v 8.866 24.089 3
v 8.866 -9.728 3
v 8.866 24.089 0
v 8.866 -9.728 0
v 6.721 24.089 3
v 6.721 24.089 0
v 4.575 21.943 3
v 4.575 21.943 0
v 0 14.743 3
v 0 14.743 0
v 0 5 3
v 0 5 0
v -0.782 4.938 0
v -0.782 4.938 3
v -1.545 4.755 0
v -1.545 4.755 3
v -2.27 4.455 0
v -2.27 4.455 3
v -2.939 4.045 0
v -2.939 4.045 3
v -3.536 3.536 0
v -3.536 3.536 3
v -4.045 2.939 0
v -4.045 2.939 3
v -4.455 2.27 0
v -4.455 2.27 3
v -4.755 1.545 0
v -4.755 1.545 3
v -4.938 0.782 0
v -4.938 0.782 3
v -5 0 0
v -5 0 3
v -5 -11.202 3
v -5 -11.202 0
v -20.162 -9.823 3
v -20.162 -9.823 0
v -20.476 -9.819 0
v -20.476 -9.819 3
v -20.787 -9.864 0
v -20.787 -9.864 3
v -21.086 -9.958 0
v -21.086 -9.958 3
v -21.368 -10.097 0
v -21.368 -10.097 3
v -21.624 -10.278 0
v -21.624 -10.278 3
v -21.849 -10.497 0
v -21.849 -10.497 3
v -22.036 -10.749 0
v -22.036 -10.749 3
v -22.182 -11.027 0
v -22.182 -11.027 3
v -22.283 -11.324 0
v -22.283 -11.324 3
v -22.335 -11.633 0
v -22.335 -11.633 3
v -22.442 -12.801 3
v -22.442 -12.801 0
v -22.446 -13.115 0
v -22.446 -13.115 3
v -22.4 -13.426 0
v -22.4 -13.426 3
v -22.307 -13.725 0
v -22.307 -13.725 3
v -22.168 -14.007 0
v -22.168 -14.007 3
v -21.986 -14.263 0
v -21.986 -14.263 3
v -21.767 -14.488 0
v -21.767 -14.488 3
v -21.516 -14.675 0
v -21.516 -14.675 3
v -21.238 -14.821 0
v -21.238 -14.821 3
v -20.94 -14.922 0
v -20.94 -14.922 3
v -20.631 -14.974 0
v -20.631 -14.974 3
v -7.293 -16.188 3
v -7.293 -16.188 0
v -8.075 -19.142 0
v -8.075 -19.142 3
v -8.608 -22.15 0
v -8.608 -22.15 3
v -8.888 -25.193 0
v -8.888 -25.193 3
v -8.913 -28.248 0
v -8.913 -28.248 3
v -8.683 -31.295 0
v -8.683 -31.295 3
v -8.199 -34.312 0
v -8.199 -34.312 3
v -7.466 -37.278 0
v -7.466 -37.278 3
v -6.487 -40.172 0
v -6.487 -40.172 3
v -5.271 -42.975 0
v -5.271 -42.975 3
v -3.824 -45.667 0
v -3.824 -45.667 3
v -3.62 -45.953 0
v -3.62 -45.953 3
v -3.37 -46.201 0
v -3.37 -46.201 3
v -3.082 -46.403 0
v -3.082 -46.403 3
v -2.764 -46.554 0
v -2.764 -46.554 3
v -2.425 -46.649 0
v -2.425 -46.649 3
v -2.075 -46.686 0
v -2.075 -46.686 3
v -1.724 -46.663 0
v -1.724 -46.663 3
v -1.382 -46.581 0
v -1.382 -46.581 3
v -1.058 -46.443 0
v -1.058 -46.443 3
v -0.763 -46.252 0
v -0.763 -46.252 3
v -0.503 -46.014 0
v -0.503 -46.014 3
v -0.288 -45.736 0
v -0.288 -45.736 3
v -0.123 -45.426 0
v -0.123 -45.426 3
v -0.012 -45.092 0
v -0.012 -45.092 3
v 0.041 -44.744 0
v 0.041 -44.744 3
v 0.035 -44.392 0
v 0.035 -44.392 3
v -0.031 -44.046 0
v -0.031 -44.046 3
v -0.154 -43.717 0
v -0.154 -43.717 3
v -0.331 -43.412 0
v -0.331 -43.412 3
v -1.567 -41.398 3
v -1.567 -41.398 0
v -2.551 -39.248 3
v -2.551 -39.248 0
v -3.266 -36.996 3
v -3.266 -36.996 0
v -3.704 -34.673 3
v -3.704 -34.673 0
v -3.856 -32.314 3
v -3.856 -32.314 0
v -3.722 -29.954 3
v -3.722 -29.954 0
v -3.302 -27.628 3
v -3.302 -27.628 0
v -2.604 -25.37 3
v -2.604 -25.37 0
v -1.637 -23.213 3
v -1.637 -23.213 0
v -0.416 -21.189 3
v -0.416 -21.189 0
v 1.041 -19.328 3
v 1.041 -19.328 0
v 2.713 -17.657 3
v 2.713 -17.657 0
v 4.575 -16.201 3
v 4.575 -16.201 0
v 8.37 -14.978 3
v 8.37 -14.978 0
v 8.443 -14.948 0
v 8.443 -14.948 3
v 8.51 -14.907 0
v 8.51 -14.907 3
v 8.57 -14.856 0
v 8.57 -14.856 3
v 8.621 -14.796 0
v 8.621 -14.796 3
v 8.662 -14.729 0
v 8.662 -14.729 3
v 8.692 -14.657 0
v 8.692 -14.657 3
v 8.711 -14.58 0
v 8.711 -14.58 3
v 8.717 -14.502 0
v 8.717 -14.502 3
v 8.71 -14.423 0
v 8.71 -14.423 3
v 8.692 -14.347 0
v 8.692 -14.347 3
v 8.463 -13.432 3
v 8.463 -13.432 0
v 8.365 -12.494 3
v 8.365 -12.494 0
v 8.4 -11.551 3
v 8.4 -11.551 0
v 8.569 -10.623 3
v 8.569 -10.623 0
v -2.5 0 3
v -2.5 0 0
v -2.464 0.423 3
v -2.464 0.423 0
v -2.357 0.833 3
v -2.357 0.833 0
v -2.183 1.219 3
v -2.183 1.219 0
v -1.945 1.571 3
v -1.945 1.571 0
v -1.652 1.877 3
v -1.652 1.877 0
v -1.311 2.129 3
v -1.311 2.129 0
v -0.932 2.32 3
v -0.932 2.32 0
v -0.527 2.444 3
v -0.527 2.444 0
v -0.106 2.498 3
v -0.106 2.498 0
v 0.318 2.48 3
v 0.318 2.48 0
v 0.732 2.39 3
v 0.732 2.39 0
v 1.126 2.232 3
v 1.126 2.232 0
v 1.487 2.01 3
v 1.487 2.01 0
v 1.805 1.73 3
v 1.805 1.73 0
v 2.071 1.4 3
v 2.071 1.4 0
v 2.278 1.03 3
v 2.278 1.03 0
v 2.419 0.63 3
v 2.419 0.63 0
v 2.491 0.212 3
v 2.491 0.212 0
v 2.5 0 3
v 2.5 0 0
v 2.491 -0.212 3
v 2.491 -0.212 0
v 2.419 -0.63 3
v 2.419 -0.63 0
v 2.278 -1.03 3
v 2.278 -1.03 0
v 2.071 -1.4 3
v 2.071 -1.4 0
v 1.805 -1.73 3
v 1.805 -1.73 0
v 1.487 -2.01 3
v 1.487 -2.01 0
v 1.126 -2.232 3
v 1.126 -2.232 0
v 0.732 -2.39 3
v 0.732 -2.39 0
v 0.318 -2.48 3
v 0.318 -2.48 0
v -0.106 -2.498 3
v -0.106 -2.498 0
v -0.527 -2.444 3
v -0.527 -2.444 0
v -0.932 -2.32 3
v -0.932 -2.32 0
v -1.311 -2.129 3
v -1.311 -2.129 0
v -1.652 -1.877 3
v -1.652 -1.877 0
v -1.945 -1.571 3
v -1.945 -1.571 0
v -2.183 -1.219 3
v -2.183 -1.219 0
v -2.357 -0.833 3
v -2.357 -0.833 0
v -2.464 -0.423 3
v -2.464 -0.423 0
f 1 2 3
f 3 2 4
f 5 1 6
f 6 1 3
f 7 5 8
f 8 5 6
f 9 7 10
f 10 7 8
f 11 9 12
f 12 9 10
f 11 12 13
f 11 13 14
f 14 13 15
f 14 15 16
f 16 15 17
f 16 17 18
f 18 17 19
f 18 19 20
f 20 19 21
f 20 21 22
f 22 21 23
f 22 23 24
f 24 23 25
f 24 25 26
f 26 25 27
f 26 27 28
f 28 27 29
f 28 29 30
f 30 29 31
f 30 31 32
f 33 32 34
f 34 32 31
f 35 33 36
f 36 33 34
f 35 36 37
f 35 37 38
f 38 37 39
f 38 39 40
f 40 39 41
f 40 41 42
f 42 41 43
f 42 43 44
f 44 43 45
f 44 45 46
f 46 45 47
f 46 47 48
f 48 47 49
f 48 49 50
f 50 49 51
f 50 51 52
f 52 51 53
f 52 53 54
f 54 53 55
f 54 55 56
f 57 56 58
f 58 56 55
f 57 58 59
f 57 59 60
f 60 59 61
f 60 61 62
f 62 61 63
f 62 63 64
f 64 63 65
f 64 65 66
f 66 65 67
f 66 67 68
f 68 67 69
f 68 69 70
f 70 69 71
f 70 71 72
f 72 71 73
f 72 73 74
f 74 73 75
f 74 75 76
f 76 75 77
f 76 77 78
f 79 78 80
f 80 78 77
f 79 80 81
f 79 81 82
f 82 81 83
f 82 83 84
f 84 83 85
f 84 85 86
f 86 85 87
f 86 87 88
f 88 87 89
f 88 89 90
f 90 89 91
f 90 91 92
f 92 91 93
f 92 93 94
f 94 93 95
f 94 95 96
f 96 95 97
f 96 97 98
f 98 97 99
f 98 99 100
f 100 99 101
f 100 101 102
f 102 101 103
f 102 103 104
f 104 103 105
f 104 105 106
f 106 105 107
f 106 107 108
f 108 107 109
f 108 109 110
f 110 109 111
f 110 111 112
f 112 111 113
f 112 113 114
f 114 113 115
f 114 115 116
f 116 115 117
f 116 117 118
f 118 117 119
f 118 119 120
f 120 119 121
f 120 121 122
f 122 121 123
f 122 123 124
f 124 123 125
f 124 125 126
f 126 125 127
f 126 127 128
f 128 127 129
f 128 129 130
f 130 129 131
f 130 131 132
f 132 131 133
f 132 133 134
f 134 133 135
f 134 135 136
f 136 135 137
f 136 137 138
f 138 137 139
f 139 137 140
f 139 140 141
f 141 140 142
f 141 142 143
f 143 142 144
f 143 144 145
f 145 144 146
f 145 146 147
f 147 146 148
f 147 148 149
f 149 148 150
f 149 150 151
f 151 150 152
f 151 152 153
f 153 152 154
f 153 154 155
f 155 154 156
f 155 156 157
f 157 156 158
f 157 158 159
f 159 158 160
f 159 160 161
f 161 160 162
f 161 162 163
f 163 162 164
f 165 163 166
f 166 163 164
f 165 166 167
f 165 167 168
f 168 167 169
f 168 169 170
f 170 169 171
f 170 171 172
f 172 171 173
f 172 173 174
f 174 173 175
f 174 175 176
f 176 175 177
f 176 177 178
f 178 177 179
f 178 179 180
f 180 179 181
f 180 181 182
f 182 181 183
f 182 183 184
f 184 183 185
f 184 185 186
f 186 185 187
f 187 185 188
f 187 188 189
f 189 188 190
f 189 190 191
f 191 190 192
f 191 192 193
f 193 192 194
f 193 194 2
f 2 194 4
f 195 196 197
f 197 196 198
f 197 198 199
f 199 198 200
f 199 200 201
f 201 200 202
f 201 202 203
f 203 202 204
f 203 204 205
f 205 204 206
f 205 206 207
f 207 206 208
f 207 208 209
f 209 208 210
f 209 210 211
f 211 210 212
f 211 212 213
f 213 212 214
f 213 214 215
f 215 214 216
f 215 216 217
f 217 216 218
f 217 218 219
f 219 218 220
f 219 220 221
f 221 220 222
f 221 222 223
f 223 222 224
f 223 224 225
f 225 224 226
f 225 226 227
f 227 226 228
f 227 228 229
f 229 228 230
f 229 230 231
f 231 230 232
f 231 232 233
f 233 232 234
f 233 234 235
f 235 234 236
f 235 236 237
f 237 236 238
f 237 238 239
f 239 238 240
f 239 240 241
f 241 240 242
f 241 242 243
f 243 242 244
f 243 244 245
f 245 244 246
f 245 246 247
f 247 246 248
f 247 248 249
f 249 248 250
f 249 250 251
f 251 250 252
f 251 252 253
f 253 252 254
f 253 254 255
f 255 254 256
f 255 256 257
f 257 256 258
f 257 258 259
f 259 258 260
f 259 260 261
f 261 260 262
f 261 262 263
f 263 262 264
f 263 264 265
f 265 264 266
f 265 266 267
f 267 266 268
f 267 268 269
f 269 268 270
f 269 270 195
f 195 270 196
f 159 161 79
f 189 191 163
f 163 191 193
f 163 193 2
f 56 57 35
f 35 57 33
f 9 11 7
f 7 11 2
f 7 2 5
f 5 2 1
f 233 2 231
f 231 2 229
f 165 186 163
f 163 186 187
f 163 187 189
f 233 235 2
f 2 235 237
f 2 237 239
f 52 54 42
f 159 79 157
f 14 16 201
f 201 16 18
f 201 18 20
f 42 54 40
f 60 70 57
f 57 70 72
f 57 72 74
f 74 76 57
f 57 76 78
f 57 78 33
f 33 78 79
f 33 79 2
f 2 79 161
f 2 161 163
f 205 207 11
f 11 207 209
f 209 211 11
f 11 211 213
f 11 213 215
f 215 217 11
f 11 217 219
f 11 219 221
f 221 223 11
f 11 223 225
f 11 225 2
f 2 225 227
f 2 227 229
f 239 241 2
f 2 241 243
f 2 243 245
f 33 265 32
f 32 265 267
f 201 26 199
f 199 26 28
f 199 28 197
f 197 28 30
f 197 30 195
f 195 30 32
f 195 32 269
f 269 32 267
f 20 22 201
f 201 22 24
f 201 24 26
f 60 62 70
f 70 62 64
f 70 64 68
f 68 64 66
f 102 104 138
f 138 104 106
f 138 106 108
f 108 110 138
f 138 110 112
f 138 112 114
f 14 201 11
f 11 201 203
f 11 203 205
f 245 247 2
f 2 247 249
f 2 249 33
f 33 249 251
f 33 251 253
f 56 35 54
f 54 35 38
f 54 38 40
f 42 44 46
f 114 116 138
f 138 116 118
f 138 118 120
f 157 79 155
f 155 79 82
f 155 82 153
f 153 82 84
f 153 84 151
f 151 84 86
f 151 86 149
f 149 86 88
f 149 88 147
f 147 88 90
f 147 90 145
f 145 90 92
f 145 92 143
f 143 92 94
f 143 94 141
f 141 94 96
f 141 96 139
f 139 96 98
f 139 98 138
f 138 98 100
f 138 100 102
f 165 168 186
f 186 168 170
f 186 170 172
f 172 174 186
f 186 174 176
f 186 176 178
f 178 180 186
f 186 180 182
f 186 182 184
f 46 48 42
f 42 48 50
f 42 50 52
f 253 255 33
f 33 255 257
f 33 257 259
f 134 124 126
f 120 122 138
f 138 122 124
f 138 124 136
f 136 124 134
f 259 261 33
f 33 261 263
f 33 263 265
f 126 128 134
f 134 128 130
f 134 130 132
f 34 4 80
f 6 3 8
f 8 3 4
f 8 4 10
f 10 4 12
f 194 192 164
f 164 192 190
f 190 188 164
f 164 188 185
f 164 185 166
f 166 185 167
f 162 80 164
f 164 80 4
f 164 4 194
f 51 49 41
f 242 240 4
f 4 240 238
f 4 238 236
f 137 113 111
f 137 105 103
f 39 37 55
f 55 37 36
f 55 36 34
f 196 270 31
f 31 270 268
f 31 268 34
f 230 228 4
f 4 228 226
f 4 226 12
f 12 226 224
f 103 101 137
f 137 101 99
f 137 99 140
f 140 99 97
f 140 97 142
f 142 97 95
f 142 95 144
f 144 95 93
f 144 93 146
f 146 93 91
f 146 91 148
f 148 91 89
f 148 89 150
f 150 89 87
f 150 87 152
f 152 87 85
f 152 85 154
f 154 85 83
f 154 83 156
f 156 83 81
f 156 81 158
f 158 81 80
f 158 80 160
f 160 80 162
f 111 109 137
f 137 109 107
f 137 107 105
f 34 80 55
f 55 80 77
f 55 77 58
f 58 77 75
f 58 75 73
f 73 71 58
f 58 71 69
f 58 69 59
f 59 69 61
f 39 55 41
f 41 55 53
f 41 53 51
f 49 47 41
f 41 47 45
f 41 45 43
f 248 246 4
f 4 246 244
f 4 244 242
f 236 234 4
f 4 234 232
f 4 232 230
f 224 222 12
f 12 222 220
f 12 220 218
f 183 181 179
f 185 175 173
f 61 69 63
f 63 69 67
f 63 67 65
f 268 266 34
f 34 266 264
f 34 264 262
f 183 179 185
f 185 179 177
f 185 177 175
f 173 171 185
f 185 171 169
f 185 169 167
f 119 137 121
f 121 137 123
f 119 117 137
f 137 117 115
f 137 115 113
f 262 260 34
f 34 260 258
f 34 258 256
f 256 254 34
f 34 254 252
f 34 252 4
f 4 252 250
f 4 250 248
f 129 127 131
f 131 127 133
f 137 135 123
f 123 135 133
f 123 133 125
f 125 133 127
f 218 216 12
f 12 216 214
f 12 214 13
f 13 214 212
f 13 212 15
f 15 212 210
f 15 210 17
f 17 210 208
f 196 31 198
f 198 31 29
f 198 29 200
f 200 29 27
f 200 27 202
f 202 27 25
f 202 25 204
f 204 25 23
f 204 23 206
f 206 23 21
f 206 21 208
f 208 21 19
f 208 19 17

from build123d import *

# Parameters (mm, degrees)
SKETCH_1_R      = 5
SKETCH_1_R_2    = 2.5
EXTRUDE_1_DEPTH = 3


with BuildPart() as part:
    # 스케치1 → 보스-돌출1 (new body)
    # profile 1 of 5: a face of its own
    with BuildSketch(Plane.XY):
        with BuildLine():
            Line((8.866410343, 21.94338903), (4.574998823, 21.94338903))
            Line((4.574998823, 21.94338903), (0, 14.743154306))
            Line((0, 14.743154306), (0, 5))
            ThreePointArc((0, 5), (3.535533906, 3.535533906), (5, 0))
            ThreePointArc((5, 0), (0, -5), (-5, 0))
            Line((-5, 0), (-5, -11.202273073))
            Line((-5, -11.202273073), (-20.162460617, -9.822892201))
            ThreePointArc((-20.162460617, -9.822892201), (-21.623929956, -10.278142815), (-22.335434041, -11.633468491))
            Line((-22.335434041, -11.633468491), (-22.441691139, -12.801470088))
            ThreePointArc((-22.441691139, -12.801470088), (-21.986440525, -14.262939427), (-20.631114849, -14.974443512))
            Line((-20.631114849, -14.974443512), (-7.293133085, -16.187845306))
            ThreePointArc((-7.293133085, -16.187845306), (-8.683000099, -31.29485147), (-3.824169556, -45.666529567))
            ThreePointArc((-3.824169556, -45.666529567), (-0.906566305, -46.354001108), (-0.33095704, -43.412283952))
            ThreePointArc((-0.33095704, -43.412283952), (-3.547402259, -28.784479694), (4.574998823, -16.200967549))
            Line((4.574998823, -16.200967549), (8.3701186, -14.978169718))
            ThreePointArc((8.3701186, -14.978169718), (8.662275884, -14.729272874), (8.69193724, -14.346616734))
            ThreePointArc((8.69193724, -14.346616734), (8.365752146, -12.021808556), (8.866410343, -9.728236855))
            Line((8.866410343, -9.728236855), (8.866410343, 21.94338903))
        make_face()
    # profile 2 of 5: a face of its own
    with BuildSketch(Plane.XY):
        Circle(SKETCH_1_R)
        Circle(SKETCH_1_R_2, mode=Mode.SUBTRACT)
    # profile 3 of 5: a face of its own
    with BuildSketch(Plane.XY):
        with BuildLine():
            ThreePointArc((5, 0), (3.535533906, 3.535533906), (0, 5))
            ThreePointArc((0, 5), (-3.535533906, 3.535533906), (-5, 0))
            ThreePointArc((-5, 0), (0, -5), (5, 0))
        make_face()
        Circle(SKETCH_1_R_2, mode=Mode.SUBTRACT)
    # profile 4 of 5: a face of its own
    with BuildSketch(Plane.XY):
        Polygon((8.866410343, 24.08909479), (6.720704583, 24.08909479), (4.574998823, 21.94338903), (8.866410343, 21.94338903), align=None)
    # profile 5 of 5: a face of its own
    with BuildSketch(Plane.XY):
        with BuildLine():
            Line((8.866410343, 21.94338903), (4.574998823, 21.94338903))
            Line((4.574998823, 21.94338903), (0, 14.743154306))
            Line((0, 14.743154306), (0, 5))
            ThreePointArc((0, 5), (3.535533906, 3.535533906), (5, 0))
            ThreePointArc((5, 0), (0, -5), (-5, 0))
            Line((-5, 0), (-5, -11.202273073))
            Line((-5, -11.202273073), (-20.162460617, -9.822892201))
            ThreePointArc((-20.162460617, -9.822892201), (-21.623929956, -10.278142815), (-22.335434041, -11.633468491))
            Line((-22.335434041, -11.633468491), (-22.441691139, -12.801470088))
            ThreePointArc((-22.441691139, -12.801470088), (-21.986440525, -14.262939427), (-20.631114849, -14.974443512))
            Line((-20.631114849, -14.974443512), (-7.293133085, -16.187845306))
            ThreePointArc((-7.293133085, -16.187845306), (-8.683000099, -31.29485147), (-3.824169556, -45.666529567))
            ThreePointArc((-3.824169556, -45.666529567), (-0.906566305, -46.354001108), (-0.33095704, -43.412283952))
            ThreePointArc((-0.33095704, -43.412283952), (-3.547402259, -28.784479694), (4.574998823, -16.200967549))
            Line((4.574998823, -16.200967549), (8.3701186, -14.978169718))
            ThreePointArc((8.3701186, -14.978169718), (8.662275884, -14.729272874), (8.69193724, -14.346616734))
            ThreePointArc((8.69193724, -14.346616734), (8.365752146, -12.021808556), (8.866410343, -9.728236855))
            Line((8.866410343, -9.728236855), (8.866410343, 21.94338903))
        make_face()
    extrude(amount=EXTRUDE_1_DEPTH)


solid = part.part
